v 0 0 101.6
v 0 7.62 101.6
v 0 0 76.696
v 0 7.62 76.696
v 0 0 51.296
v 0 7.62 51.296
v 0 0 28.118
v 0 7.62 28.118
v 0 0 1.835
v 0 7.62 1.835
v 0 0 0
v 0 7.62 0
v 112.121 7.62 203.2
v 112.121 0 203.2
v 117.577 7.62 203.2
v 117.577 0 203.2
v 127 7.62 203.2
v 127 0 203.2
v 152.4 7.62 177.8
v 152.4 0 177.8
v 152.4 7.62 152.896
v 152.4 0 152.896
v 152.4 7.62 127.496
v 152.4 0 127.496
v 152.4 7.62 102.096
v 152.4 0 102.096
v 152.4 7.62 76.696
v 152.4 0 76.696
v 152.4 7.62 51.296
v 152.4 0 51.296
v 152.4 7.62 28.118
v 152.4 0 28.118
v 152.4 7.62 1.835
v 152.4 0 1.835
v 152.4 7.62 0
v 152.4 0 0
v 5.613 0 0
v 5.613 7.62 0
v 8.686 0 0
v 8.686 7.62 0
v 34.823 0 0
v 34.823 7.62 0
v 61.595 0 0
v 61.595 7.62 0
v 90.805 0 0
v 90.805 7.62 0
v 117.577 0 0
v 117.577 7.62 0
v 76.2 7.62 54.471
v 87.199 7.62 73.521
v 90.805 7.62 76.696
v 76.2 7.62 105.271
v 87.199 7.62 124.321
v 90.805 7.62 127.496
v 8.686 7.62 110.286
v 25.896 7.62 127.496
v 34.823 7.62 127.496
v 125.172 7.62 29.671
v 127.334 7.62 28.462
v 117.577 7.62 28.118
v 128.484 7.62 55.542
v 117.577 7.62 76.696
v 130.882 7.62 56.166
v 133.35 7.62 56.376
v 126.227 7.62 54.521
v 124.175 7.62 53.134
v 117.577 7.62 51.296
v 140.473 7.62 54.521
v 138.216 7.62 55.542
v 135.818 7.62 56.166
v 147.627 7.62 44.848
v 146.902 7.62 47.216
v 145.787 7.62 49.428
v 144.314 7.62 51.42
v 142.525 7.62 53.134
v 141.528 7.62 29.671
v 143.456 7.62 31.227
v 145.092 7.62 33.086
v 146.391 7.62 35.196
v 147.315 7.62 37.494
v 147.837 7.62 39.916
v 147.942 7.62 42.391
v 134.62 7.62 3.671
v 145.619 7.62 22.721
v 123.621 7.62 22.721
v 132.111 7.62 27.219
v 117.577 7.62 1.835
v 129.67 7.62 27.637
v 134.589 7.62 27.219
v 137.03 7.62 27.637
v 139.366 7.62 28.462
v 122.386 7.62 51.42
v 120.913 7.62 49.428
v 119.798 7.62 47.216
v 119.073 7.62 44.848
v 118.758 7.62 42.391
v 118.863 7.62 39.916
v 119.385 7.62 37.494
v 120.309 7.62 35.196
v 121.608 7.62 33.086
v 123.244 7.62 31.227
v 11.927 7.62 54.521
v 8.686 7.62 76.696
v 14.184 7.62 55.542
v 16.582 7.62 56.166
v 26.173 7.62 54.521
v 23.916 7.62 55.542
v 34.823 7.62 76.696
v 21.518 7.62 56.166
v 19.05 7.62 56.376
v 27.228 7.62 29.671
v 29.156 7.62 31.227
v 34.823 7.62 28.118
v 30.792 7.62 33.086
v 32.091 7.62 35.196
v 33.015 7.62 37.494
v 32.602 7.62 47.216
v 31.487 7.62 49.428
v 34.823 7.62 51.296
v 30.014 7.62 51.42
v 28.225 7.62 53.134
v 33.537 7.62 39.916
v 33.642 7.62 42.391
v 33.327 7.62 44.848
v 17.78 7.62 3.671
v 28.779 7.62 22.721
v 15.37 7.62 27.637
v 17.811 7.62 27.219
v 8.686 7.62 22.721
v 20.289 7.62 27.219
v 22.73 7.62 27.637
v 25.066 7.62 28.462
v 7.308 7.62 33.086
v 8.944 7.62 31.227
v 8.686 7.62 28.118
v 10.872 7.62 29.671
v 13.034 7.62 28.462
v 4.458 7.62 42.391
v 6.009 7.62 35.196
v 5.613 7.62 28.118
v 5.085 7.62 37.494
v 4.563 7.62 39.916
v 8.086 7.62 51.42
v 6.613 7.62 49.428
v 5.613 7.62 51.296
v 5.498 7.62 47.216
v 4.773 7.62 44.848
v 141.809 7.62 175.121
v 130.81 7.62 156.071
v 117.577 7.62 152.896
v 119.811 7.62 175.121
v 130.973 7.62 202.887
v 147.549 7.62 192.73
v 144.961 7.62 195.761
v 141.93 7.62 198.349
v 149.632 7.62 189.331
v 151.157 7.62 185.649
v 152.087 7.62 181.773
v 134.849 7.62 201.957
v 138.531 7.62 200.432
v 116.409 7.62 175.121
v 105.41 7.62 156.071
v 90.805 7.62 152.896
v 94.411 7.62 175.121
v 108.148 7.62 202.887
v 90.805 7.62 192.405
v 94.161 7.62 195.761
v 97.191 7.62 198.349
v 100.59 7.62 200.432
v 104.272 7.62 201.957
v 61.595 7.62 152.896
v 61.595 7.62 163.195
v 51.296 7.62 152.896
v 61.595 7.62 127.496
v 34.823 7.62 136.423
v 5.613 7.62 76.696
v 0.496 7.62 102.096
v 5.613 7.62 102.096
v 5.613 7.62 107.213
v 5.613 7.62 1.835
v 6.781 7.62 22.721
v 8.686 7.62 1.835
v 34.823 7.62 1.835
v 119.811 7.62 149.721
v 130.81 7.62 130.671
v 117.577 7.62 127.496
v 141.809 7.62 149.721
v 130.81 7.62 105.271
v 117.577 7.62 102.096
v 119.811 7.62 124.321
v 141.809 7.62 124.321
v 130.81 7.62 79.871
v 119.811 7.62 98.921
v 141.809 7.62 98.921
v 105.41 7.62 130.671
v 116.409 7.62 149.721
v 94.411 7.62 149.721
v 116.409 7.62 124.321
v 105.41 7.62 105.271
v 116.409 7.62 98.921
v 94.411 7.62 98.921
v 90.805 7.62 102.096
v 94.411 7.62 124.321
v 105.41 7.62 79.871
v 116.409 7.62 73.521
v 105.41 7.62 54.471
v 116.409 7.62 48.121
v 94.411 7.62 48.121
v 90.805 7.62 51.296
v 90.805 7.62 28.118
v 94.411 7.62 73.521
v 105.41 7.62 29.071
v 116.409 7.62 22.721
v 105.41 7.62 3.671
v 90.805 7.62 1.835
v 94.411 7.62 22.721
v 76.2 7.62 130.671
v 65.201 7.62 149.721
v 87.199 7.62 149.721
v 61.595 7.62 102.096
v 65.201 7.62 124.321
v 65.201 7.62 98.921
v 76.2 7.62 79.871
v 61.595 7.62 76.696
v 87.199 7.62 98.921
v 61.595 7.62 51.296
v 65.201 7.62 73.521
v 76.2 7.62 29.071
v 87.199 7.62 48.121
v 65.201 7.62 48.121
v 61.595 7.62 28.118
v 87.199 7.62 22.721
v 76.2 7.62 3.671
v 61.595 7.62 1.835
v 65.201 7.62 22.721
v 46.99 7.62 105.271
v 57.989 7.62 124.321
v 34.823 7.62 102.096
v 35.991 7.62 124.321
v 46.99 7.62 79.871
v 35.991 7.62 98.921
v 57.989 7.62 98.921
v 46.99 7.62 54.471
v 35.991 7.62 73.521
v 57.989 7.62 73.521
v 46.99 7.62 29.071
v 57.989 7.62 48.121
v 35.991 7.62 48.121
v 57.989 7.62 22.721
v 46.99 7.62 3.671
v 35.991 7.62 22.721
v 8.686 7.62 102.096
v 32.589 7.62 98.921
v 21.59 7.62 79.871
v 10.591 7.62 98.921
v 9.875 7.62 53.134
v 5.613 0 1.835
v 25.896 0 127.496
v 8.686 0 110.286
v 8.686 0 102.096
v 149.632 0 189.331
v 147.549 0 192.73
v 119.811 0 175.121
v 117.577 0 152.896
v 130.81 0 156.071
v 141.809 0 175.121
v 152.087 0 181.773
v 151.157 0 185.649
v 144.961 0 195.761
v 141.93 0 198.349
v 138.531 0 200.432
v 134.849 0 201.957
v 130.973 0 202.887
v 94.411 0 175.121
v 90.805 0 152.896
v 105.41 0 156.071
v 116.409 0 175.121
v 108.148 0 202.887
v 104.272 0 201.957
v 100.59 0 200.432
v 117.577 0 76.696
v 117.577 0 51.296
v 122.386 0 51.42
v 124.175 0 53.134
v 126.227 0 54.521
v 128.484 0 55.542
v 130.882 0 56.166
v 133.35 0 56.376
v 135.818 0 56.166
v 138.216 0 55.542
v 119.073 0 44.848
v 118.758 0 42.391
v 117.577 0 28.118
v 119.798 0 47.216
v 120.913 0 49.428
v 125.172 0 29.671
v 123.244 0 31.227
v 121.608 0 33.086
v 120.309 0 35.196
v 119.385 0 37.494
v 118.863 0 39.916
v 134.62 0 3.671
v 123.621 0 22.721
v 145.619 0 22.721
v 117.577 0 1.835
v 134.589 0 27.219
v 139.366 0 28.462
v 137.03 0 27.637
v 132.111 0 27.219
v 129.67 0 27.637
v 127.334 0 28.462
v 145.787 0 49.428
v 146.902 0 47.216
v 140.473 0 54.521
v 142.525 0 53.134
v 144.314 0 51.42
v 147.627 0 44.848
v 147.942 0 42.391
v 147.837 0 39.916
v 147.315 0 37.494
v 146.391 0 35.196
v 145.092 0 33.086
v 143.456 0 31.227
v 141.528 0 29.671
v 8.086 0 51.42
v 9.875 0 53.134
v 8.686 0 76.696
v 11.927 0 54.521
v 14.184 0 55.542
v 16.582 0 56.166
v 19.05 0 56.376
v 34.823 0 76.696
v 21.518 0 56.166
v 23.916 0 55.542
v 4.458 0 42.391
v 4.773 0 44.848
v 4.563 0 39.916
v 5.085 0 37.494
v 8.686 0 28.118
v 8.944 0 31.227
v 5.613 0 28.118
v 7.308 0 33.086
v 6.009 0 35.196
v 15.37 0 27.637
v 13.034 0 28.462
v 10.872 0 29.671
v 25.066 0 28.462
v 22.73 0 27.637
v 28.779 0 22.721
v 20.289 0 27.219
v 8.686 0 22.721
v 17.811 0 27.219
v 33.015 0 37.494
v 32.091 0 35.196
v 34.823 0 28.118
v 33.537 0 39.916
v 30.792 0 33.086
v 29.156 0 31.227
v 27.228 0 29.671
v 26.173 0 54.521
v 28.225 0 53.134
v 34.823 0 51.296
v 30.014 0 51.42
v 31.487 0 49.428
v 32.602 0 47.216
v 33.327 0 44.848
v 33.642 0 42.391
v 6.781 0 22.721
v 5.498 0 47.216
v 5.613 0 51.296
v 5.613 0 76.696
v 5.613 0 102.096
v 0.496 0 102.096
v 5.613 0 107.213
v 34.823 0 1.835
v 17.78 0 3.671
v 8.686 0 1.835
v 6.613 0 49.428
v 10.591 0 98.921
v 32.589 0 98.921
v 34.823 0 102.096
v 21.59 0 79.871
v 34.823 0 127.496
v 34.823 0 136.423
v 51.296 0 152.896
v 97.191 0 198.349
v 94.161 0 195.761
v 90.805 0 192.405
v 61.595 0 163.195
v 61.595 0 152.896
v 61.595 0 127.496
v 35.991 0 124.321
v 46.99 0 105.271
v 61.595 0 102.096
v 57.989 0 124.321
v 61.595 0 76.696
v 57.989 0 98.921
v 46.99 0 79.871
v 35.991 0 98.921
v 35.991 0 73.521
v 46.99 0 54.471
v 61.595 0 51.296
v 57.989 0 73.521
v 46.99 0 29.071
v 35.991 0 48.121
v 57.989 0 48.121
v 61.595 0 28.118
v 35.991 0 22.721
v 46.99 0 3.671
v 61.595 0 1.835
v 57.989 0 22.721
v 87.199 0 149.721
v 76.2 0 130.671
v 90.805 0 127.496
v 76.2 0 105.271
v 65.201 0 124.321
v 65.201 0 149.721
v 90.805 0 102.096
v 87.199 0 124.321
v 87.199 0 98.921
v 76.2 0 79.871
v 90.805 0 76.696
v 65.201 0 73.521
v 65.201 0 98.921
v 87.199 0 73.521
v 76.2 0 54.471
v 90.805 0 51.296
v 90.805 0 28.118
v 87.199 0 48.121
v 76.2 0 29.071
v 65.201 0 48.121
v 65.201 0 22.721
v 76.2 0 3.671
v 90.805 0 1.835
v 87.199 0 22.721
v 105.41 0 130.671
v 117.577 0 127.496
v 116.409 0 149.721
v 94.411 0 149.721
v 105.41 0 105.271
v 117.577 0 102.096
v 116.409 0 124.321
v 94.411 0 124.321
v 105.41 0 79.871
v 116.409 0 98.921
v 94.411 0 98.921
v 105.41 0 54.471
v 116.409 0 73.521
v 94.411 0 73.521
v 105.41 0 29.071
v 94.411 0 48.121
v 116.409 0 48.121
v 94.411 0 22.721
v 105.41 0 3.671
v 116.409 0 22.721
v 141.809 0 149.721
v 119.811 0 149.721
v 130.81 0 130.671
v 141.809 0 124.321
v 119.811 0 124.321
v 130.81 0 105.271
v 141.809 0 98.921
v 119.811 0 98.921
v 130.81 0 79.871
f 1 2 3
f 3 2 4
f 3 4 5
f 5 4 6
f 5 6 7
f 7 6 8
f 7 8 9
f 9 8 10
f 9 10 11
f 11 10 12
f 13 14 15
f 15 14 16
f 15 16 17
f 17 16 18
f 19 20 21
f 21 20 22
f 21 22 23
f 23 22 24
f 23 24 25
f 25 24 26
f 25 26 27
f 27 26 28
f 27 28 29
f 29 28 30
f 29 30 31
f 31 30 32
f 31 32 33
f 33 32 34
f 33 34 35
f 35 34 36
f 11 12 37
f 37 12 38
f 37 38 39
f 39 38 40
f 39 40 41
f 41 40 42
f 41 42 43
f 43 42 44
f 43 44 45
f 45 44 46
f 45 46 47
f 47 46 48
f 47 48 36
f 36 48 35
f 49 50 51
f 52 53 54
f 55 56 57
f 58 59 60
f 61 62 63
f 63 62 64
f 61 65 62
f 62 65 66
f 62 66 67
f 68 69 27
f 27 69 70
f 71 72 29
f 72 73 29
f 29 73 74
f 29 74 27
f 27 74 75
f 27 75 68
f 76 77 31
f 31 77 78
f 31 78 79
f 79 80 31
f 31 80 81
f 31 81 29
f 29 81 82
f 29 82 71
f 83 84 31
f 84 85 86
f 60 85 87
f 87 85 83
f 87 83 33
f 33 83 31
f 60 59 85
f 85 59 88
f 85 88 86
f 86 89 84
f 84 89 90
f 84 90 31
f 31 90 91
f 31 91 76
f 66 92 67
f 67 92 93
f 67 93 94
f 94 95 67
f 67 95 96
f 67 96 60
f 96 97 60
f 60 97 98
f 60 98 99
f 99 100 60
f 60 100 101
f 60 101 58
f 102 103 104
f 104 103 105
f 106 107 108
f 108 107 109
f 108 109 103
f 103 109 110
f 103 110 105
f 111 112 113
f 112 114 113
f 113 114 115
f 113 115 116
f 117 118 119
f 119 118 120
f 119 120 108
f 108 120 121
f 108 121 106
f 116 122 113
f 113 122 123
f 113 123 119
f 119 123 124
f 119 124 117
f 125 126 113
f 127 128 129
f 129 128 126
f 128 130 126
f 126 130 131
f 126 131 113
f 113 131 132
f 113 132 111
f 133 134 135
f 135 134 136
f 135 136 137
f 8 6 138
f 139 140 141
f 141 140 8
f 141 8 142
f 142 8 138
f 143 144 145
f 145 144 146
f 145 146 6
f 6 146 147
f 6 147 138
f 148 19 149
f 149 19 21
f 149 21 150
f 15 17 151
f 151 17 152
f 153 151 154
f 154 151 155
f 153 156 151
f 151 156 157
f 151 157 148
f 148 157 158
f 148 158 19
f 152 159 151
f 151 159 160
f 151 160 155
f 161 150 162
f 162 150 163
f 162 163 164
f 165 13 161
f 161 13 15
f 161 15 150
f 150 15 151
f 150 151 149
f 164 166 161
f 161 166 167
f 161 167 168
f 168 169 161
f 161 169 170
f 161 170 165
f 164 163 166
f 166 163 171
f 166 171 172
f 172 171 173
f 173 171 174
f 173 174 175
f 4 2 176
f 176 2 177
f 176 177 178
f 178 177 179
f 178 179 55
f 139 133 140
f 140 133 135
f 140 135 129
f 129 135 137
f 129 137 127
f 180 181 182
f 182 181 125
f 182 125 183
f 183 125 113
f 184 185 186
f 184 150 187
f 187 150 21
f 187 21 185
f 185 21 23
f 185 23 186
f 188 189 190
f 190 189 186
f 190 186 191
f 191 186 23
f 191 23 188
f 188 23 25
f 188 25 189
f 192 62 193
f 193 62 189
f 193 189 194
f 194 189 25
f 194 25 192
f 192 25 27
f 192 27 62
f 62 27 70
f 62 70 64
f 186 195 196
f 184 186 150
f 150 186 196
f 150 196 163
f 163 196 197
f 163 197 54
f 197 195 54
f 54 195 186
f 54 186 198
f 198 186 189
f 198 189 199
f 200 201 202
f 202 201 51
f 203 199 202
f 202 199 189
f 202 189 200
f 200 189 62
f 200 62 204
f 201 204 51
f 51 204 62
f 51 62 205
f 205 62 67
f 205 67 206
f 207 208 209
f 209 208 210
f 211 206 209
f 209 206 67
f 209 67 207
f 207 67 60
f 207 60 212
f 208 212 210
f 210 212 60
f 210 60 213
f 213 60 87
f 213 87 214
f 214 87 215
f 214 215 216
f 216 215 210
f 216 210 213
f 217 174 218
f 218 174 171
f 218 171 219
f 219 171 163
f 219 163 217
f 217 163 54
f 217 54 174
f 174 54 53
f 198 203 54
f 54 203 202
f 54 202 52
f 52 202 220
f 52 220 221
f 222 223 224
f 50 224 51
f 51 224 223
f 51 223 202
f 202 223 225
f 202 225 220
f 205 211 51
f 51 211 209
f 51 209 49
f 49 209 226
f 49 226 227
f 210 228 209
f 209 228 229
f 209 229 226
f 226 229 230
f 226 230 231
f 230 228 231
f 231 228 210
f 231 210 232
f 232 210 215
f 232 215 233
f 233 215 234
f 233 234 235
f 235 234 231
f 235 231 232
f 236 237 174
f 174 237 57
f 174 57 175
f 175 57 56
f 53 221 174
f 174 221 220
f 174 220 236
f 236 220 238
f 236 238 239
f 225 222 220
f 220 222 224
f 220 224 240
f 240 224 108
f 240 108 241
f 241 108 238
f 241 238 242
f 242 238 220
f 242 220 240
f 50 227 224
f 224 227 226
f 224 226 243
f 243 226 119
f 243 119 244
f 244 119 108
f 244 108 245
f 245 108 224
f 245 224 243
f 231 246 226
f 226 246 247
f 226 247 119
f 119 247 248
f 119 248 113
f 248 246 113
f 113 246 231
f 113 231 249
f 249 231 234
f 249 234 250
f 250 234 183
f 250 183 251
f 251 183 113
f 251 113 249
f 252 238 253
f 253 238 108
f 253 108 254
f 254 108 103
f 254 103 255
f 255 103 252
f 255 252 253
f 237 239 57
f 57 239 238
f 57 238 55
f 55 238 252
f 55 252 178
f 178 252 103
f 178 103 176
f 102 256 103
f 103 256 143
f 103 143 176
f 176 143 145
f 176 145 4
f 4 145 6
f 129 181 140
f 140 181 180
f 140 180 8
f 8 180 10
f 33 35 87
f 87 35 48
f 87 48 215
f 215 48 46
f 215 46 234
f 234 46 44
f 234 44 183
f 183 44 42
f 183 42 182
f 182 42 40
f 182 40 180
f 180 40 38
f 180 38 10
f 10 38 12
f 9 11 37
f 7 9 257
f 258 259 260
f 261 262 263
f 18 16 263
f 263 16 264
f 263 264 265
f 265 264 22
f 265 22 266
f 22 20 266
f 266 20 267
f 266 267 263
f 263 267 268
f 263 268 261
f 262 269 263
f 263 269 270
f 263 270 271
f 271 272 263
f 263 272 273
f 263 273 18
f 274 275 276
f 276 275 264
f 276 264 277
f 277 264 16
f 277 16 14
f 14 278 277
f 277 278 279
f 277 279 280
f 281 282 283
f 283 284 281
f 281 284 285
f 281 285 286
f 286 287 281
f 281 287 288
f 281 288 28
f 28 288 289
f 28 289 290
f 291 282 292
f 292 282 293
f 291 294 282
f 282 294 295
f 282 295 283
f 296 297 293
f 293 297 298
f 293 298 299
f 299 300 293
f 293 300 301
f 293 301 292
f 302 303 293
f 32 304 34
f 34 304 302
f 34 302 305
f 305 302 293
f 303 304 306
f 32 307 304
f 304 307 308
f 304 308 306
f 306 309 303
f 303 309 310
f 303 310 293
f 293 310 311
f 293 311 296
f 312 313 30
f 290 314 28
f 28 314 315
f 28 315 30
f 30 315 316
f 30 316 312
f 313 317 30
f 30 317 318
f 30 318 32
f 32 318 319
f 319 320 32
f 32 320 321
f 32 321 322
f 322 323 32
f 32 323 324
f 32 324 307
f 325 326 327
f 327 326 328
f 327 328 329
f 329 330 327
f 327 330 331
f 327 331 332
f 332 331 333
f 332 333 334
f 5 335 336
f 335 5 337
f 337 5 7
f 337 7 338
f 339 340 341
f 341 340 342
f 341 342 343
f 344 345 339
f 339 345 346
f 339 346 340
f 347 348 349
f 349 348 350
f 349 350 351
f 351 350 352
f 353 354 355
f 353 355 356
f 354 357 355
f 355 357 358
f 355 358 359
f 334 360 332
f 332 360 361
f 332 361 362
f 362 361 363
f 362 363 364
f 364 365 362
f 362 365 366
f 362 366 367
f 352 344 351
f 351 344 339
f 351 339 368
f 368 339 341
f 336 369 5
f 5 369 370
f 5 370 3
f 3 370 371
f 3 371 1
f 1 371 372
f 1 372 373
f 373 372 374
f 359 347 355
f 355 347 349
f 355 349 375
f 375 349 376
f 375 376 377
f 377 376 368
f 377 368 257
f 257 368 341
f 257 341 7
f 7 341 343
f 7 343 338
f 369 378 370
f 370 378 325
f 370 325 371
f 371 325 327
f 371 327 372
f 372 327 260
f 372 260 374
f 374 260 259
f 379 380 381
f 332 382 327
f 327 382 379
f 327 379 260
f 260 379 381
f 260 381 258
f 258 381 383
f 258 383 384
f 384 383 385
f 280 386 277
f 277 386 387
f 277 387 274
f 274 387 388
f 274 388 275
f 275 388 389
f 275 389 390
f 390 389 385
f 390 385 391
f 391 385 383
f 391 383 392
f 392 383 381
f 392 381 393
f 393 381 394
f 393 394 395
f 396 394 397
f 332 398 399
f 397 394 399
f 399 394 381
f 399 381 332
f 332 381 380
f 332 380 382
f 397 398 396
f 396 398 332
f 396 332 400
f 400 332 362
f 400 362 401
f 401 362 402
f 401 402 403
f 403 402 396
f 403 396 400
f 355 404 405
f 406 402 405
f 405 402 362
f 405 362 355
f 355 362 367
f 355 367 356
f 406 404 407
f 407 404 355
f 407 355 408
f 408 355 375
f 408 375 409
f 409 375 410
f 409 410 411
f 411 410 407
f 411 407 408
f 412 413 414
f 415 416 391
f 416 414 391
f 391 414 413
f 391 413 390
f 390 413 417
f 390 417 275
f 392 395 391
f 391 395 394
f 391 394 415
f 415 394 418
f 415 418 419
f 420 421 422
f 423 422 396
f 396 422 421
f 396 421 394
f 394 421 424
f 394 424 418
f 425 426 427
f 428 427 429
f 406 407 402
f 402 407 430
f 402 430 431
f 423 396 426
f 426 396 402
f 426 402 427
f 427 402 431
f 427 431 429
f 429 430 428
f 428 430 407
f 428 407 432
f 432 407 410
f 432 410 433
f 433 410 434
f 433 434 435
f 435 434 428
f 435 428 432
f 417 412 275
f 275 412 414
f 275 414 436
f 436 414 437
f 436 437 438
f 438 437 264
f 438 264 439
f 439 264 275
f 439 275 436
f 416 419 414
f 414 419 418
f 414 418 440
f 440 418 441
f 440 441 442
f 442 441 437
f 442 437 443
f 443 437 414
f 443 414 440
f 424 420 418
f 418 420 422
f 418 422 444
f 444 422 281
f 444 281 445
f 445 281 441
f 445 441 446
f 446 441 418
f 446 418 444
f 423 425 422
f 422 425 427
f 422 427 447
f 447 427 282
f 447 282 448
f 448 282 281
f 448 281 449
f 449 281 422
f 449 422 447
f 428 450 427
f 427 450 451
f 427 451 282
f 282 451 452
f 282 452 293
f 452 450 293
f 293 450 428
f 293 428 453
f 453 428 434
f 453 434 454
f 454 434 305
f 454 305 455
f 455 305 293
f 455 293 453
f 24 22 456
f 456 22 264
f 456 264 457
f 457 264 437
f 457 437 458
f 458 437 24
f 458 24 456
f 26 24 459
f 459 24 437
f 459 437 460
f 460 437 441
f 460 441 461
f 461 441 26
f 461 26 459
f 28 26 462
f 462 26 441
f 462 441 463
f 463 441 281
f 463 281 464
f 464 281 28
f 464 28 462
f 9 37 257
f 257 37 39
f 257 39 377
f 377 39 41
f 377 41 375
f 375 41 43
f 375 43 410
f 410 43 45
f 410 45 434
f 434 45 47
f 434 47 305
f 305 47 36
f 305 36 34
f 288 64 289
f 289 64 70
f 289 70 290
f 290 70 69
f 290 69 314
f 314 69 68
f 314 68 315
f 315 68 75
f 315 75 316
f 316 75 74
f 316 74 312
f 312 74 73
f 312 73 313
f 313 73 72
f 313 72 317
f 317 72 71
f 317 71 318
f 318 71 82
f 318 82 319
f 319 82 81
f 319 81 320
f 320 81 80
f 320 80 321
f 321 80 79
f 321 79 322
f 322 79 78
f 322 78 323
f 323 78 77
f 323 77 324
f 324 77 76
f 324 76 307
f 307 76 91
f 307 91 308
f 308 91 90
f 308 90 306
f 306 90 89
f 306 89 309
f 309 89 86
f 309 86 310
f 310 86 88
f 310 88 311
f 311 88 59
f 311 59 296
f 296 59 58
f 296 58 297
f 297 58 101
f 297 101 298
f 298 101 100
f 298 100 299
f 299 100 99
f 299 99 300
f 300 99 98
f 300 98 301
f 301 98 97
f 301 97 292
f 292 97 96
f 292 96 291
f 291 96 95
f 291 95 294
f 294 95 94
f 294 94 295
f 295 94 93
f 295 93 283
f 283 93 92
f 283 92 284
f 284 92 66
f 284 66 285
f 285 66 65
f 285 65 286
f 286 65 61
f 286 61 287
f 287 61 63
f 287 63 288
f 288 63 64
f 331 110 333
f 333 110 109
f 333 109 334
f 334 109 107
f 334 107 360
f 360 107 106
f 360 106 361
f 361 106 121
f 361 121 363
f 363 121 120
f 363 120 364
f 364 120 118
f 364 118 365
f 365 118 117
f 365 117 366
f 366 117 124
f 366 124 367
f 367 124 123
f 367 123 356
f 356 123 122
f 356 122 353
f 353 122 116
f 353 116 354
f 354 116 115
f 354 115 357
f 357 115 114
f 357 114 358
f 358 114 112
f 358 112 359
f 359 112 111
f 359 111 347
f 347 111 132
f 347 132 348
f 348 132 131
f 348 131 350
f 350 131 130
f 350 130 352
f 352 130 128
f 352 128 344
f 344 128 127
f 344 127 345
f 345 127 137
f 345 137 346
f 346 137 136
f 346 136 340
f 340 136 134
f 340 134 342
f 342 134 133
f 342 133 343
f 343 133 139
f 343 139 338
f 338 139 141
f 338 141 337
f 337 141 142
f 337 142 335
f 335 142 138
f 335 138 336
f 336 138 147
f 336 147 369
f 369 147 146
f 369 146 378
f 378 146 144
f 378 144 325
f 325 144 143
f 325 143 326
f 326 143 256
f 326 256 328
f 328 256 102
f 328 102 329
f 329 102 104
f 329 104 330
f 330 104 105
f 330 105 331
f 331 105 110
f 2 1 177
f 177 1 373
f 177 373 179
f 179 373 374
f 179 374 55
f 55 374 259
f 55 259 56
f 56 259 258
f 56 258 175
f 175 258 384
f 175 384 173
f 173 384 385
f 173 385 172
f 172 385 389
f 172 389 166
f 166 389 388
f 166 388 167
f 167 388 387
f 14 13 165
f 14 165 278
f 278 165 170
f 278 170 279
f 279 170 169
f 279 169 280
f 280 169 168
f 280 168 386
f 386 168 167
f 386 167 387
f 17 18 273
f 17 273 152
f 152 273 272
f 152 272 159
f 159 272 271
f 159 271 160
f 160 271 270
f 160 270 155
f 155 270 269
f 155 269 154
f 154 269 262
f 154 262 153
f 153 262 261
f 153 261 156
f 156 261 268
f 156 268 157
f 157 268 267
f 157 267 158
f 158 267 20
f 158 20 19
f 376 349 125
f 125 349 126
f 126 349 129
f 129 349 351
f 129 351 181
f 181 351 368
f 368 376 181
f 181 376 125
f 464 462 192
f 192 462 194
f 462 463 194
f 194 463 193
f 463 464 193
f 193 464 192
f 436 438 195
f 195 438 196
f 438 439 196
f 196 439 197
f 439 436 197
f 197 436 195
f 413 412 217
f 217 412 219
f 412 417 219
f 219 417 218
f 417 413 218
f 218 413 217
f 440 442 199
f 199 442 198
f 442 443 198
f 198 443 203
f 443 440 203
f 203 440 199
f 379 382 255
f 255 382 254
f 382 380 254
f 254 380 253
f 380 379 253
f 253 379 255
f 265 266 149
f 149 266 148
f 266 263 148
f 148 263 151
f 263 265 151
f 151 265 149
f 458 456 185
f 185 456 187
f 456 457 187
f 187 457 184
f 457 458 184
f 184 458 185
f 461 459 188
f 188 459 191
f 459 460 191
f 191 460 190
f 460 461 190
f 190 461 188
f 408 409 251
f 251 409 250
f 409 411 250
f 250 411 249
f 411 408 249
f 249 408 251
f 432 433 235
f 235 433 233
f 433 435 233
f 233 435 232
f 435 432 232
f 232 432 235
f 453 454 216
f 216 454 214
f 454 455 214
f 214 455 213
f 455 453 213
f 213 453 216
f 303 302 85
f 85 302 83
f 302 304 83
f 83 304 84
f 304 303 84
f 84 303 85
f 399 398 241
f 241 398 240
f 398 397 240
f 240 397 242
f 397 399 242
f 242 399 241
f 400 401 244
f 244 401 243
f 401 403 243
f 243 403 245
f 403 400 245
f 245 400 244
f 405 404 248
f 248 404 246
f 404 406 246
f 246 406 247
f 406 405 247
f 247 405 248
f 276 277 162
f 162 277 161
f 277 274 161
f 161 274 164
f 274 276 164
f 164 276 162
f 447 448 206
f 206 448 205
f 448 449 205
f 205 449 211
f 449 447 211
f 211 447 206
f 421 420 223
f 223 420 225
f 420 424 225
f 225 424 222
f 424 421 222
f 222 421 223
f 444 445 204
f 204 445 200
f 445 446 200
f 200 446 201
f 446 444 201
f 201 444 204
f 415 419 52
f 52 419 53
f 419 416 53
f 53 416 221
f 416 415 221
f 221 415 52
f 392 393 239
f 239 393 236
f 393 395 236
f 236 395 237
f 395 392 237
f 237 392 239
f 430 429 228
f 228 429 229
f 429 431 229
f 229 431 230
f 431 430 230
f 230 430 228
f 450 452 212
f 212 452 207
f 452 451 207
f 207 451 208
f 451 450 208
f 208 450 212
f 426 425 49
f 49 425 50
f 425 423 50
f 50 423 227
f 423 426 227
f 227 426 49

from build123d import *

# Parameters (mm, degrees)
SKETCH9_W           = 152.4
SKETCH9_H           = 203.2
BOSS_EXTRUDE4_DEPTH = 7.62
SKETCH10_R          = 14.605
CUT_EXTRUDE4_DEPTH  = 7.62
CUT_EXTRUDE5_DEPTH  = 7.62
FILLET2_R           = 25.4
CUT_EXTRUDE6_DEPTH  = 7.62


with BuildPart() as part:
    # Sketch9 → Boss-Extrude4 (new body)
    with BuildSketch(Plane(origin=(0, 0, 0), x_dir=(1, 0, 0), z_dir=(0, 1, 0))):
        with Locations((76.2, -101.6)):
            Rectangle(SKETCH9_W, SKETCH9_H)
    extrude(amount=BOSS_EXTRUDE4_DEPTH)

    # Sketch10 → Cut-Extrude4 (cut)
    with BuildSketch(Plane(origin=(0, 7.62, 0), x_dir=(1, 0, 0), z_dir=(0, 1, 0))):
        with Locations(Location((19.05, -41.770926028, 0), (0, 0, 270))):
            Circle(SKETCH10_R)
        with Locations(Location((133.35, -41.770926028, 0), (0, 0, 270))):
            Circle(SKETCH10_R)
    extrude(amount=-CUT_EXTRUDE4_DEPTH, mode=Mode.SUBTRACT)

    # Sketch11 → Cut-Extrude5 (cut)
    with BuildSketch(Plane(origin=(0, 7.62, 0), x_dir=(1, 0, 0), z_dir=(0, 1, 0))):
        Polygon((0, -101.6), (101.6, -203.2), (0, -203.2), align=None)
    extrude(amount=-CUT_EXTRUDE5_DEPTH, mode=Mode.SUBTRACT)

    # Fillet2
    fillet2_edges = [part.edges().sort_by_distance(p)[0] for p in [
        (101.6, 3.81, 203.2),
        (152.4, 3.81, 203.2),
    ]]
    fillet(fillet2_edges, radius=FILLET2_R)

    # Sketch12 → Cut-Extrude6 (cut)
    with BuildSketch(Plane(origin=(0, 7.62, 0), x_dir=(1, 0, 0), z_dir=(0, 1, 0))):
        Polygon((17.78, -3.670926028), (6.781477372, -22.720926028), (28.778522628, -22.720926028), align=None)
        Polygon((35.991477372, -22.720926028), (57.988522628, -22.720926028), (46.99, -3.670926028), align=None)
        Polygon((65.201477372, -22.720926028), (87.198522628, -22.720926028), (76.2, -3.670926028), align=None)
        Polygon((94.411477372, -22.720926028), (116.408522628, -22.720926028), (105.41, -3.670926028), align=None)
        Polygon((123.621477372, -22.720926028), (145.618522628, -22.720926028), (134.62, -3.670926028), align=None)
        Polygon((35.991477372, -48.120926028), (57.988522628, -48.120926028), (46.99, -29.070926028), align=None)
        Polygon((35.991477372, -73.520926028), (57.988522628, -73.520926028), (46.99, -54.470926028), align=None)
        Polygon((35.991477372, -98.920926028), (57.988522628, -98.920926028), (46.99, -79.870926028), align=None)
        Polygon((35.991477372, -124.320926028), (57.988522628, -124.320926028), (46.99, -105.270926028), align=None)
        Polygon((65.201477372, -48.120926028), (87.198522628, -48.120926028), (76.2, -29.070926028), align=None)
        Polygon((105.41, -29.070926028), (94.411477372, -48.120926028), (116.408522628, -48.120926028), align=None)
        Polygon((65.201477372, -73.520926028), (87.198522628, -73.520926028), (76.2, -54.470926028), align=None)
        Polygon((105.41, -54.470926028), (94.411477372, -73.520926028), (116.408522628, -73.520926028), align=None)
        Polygon((65.201477372, -98.920926028), (87.198522628, -98.920926028), (76.2, -79.870926028), align=None)
        Polygon((105.41, -79.870926028), (94.411477372, -98.920926028), (116.408522628, -98.920926028), align=None)
        Polygon((65.201477372, -124.320926028), (87.198522628, -124.320926028), (76.2, -105.270926028), align=None)
        Polygon((105.41, -105.270926028), (94.411477372, -124.320926028), (116.408522628, -124.320926028), align=None)
        Polygon((65.201477372, -149.720926028), (87.198522628, -149.720926028), (76.2, -130.670926028), align=None)
        Polygon((105.41, -130.670926028), (94.411477372, -149.720926028), (116.408522628, -149.720926028), align=None)
        Polygon((130.81, -79.870926028), (119.811477372, -98.920926028), (141.808522628, -98.920926028), align=None)
        Polygon((130.81, -105.270926028), (119.811477372, -124.320926028), (141.808522628, -124.320926028), align=None)
        Polygon((130.81, -130.670926028), (119.811477372, -149.720926028), (141.808522628, -149.720926028), align=None)
        Polygon((105.41, -156.070926028), (94.411477372, -175.120926028), (116.408522628, -175.120926028), align=None)
        Polygon((130.81, -156.070926028), (119.811477372, -175.120926028), (141.808522628, -175.120926028), align=None)
        Polygon((10.591477372, -98.920926028), (32.588522628, -98.920926028), (21.59, -79.870926028), align=None)
    extrude(amount=-CUT_EXTRUDE6_DEPTH, mode=Mode.SUBTRACT)


solid = part.part
